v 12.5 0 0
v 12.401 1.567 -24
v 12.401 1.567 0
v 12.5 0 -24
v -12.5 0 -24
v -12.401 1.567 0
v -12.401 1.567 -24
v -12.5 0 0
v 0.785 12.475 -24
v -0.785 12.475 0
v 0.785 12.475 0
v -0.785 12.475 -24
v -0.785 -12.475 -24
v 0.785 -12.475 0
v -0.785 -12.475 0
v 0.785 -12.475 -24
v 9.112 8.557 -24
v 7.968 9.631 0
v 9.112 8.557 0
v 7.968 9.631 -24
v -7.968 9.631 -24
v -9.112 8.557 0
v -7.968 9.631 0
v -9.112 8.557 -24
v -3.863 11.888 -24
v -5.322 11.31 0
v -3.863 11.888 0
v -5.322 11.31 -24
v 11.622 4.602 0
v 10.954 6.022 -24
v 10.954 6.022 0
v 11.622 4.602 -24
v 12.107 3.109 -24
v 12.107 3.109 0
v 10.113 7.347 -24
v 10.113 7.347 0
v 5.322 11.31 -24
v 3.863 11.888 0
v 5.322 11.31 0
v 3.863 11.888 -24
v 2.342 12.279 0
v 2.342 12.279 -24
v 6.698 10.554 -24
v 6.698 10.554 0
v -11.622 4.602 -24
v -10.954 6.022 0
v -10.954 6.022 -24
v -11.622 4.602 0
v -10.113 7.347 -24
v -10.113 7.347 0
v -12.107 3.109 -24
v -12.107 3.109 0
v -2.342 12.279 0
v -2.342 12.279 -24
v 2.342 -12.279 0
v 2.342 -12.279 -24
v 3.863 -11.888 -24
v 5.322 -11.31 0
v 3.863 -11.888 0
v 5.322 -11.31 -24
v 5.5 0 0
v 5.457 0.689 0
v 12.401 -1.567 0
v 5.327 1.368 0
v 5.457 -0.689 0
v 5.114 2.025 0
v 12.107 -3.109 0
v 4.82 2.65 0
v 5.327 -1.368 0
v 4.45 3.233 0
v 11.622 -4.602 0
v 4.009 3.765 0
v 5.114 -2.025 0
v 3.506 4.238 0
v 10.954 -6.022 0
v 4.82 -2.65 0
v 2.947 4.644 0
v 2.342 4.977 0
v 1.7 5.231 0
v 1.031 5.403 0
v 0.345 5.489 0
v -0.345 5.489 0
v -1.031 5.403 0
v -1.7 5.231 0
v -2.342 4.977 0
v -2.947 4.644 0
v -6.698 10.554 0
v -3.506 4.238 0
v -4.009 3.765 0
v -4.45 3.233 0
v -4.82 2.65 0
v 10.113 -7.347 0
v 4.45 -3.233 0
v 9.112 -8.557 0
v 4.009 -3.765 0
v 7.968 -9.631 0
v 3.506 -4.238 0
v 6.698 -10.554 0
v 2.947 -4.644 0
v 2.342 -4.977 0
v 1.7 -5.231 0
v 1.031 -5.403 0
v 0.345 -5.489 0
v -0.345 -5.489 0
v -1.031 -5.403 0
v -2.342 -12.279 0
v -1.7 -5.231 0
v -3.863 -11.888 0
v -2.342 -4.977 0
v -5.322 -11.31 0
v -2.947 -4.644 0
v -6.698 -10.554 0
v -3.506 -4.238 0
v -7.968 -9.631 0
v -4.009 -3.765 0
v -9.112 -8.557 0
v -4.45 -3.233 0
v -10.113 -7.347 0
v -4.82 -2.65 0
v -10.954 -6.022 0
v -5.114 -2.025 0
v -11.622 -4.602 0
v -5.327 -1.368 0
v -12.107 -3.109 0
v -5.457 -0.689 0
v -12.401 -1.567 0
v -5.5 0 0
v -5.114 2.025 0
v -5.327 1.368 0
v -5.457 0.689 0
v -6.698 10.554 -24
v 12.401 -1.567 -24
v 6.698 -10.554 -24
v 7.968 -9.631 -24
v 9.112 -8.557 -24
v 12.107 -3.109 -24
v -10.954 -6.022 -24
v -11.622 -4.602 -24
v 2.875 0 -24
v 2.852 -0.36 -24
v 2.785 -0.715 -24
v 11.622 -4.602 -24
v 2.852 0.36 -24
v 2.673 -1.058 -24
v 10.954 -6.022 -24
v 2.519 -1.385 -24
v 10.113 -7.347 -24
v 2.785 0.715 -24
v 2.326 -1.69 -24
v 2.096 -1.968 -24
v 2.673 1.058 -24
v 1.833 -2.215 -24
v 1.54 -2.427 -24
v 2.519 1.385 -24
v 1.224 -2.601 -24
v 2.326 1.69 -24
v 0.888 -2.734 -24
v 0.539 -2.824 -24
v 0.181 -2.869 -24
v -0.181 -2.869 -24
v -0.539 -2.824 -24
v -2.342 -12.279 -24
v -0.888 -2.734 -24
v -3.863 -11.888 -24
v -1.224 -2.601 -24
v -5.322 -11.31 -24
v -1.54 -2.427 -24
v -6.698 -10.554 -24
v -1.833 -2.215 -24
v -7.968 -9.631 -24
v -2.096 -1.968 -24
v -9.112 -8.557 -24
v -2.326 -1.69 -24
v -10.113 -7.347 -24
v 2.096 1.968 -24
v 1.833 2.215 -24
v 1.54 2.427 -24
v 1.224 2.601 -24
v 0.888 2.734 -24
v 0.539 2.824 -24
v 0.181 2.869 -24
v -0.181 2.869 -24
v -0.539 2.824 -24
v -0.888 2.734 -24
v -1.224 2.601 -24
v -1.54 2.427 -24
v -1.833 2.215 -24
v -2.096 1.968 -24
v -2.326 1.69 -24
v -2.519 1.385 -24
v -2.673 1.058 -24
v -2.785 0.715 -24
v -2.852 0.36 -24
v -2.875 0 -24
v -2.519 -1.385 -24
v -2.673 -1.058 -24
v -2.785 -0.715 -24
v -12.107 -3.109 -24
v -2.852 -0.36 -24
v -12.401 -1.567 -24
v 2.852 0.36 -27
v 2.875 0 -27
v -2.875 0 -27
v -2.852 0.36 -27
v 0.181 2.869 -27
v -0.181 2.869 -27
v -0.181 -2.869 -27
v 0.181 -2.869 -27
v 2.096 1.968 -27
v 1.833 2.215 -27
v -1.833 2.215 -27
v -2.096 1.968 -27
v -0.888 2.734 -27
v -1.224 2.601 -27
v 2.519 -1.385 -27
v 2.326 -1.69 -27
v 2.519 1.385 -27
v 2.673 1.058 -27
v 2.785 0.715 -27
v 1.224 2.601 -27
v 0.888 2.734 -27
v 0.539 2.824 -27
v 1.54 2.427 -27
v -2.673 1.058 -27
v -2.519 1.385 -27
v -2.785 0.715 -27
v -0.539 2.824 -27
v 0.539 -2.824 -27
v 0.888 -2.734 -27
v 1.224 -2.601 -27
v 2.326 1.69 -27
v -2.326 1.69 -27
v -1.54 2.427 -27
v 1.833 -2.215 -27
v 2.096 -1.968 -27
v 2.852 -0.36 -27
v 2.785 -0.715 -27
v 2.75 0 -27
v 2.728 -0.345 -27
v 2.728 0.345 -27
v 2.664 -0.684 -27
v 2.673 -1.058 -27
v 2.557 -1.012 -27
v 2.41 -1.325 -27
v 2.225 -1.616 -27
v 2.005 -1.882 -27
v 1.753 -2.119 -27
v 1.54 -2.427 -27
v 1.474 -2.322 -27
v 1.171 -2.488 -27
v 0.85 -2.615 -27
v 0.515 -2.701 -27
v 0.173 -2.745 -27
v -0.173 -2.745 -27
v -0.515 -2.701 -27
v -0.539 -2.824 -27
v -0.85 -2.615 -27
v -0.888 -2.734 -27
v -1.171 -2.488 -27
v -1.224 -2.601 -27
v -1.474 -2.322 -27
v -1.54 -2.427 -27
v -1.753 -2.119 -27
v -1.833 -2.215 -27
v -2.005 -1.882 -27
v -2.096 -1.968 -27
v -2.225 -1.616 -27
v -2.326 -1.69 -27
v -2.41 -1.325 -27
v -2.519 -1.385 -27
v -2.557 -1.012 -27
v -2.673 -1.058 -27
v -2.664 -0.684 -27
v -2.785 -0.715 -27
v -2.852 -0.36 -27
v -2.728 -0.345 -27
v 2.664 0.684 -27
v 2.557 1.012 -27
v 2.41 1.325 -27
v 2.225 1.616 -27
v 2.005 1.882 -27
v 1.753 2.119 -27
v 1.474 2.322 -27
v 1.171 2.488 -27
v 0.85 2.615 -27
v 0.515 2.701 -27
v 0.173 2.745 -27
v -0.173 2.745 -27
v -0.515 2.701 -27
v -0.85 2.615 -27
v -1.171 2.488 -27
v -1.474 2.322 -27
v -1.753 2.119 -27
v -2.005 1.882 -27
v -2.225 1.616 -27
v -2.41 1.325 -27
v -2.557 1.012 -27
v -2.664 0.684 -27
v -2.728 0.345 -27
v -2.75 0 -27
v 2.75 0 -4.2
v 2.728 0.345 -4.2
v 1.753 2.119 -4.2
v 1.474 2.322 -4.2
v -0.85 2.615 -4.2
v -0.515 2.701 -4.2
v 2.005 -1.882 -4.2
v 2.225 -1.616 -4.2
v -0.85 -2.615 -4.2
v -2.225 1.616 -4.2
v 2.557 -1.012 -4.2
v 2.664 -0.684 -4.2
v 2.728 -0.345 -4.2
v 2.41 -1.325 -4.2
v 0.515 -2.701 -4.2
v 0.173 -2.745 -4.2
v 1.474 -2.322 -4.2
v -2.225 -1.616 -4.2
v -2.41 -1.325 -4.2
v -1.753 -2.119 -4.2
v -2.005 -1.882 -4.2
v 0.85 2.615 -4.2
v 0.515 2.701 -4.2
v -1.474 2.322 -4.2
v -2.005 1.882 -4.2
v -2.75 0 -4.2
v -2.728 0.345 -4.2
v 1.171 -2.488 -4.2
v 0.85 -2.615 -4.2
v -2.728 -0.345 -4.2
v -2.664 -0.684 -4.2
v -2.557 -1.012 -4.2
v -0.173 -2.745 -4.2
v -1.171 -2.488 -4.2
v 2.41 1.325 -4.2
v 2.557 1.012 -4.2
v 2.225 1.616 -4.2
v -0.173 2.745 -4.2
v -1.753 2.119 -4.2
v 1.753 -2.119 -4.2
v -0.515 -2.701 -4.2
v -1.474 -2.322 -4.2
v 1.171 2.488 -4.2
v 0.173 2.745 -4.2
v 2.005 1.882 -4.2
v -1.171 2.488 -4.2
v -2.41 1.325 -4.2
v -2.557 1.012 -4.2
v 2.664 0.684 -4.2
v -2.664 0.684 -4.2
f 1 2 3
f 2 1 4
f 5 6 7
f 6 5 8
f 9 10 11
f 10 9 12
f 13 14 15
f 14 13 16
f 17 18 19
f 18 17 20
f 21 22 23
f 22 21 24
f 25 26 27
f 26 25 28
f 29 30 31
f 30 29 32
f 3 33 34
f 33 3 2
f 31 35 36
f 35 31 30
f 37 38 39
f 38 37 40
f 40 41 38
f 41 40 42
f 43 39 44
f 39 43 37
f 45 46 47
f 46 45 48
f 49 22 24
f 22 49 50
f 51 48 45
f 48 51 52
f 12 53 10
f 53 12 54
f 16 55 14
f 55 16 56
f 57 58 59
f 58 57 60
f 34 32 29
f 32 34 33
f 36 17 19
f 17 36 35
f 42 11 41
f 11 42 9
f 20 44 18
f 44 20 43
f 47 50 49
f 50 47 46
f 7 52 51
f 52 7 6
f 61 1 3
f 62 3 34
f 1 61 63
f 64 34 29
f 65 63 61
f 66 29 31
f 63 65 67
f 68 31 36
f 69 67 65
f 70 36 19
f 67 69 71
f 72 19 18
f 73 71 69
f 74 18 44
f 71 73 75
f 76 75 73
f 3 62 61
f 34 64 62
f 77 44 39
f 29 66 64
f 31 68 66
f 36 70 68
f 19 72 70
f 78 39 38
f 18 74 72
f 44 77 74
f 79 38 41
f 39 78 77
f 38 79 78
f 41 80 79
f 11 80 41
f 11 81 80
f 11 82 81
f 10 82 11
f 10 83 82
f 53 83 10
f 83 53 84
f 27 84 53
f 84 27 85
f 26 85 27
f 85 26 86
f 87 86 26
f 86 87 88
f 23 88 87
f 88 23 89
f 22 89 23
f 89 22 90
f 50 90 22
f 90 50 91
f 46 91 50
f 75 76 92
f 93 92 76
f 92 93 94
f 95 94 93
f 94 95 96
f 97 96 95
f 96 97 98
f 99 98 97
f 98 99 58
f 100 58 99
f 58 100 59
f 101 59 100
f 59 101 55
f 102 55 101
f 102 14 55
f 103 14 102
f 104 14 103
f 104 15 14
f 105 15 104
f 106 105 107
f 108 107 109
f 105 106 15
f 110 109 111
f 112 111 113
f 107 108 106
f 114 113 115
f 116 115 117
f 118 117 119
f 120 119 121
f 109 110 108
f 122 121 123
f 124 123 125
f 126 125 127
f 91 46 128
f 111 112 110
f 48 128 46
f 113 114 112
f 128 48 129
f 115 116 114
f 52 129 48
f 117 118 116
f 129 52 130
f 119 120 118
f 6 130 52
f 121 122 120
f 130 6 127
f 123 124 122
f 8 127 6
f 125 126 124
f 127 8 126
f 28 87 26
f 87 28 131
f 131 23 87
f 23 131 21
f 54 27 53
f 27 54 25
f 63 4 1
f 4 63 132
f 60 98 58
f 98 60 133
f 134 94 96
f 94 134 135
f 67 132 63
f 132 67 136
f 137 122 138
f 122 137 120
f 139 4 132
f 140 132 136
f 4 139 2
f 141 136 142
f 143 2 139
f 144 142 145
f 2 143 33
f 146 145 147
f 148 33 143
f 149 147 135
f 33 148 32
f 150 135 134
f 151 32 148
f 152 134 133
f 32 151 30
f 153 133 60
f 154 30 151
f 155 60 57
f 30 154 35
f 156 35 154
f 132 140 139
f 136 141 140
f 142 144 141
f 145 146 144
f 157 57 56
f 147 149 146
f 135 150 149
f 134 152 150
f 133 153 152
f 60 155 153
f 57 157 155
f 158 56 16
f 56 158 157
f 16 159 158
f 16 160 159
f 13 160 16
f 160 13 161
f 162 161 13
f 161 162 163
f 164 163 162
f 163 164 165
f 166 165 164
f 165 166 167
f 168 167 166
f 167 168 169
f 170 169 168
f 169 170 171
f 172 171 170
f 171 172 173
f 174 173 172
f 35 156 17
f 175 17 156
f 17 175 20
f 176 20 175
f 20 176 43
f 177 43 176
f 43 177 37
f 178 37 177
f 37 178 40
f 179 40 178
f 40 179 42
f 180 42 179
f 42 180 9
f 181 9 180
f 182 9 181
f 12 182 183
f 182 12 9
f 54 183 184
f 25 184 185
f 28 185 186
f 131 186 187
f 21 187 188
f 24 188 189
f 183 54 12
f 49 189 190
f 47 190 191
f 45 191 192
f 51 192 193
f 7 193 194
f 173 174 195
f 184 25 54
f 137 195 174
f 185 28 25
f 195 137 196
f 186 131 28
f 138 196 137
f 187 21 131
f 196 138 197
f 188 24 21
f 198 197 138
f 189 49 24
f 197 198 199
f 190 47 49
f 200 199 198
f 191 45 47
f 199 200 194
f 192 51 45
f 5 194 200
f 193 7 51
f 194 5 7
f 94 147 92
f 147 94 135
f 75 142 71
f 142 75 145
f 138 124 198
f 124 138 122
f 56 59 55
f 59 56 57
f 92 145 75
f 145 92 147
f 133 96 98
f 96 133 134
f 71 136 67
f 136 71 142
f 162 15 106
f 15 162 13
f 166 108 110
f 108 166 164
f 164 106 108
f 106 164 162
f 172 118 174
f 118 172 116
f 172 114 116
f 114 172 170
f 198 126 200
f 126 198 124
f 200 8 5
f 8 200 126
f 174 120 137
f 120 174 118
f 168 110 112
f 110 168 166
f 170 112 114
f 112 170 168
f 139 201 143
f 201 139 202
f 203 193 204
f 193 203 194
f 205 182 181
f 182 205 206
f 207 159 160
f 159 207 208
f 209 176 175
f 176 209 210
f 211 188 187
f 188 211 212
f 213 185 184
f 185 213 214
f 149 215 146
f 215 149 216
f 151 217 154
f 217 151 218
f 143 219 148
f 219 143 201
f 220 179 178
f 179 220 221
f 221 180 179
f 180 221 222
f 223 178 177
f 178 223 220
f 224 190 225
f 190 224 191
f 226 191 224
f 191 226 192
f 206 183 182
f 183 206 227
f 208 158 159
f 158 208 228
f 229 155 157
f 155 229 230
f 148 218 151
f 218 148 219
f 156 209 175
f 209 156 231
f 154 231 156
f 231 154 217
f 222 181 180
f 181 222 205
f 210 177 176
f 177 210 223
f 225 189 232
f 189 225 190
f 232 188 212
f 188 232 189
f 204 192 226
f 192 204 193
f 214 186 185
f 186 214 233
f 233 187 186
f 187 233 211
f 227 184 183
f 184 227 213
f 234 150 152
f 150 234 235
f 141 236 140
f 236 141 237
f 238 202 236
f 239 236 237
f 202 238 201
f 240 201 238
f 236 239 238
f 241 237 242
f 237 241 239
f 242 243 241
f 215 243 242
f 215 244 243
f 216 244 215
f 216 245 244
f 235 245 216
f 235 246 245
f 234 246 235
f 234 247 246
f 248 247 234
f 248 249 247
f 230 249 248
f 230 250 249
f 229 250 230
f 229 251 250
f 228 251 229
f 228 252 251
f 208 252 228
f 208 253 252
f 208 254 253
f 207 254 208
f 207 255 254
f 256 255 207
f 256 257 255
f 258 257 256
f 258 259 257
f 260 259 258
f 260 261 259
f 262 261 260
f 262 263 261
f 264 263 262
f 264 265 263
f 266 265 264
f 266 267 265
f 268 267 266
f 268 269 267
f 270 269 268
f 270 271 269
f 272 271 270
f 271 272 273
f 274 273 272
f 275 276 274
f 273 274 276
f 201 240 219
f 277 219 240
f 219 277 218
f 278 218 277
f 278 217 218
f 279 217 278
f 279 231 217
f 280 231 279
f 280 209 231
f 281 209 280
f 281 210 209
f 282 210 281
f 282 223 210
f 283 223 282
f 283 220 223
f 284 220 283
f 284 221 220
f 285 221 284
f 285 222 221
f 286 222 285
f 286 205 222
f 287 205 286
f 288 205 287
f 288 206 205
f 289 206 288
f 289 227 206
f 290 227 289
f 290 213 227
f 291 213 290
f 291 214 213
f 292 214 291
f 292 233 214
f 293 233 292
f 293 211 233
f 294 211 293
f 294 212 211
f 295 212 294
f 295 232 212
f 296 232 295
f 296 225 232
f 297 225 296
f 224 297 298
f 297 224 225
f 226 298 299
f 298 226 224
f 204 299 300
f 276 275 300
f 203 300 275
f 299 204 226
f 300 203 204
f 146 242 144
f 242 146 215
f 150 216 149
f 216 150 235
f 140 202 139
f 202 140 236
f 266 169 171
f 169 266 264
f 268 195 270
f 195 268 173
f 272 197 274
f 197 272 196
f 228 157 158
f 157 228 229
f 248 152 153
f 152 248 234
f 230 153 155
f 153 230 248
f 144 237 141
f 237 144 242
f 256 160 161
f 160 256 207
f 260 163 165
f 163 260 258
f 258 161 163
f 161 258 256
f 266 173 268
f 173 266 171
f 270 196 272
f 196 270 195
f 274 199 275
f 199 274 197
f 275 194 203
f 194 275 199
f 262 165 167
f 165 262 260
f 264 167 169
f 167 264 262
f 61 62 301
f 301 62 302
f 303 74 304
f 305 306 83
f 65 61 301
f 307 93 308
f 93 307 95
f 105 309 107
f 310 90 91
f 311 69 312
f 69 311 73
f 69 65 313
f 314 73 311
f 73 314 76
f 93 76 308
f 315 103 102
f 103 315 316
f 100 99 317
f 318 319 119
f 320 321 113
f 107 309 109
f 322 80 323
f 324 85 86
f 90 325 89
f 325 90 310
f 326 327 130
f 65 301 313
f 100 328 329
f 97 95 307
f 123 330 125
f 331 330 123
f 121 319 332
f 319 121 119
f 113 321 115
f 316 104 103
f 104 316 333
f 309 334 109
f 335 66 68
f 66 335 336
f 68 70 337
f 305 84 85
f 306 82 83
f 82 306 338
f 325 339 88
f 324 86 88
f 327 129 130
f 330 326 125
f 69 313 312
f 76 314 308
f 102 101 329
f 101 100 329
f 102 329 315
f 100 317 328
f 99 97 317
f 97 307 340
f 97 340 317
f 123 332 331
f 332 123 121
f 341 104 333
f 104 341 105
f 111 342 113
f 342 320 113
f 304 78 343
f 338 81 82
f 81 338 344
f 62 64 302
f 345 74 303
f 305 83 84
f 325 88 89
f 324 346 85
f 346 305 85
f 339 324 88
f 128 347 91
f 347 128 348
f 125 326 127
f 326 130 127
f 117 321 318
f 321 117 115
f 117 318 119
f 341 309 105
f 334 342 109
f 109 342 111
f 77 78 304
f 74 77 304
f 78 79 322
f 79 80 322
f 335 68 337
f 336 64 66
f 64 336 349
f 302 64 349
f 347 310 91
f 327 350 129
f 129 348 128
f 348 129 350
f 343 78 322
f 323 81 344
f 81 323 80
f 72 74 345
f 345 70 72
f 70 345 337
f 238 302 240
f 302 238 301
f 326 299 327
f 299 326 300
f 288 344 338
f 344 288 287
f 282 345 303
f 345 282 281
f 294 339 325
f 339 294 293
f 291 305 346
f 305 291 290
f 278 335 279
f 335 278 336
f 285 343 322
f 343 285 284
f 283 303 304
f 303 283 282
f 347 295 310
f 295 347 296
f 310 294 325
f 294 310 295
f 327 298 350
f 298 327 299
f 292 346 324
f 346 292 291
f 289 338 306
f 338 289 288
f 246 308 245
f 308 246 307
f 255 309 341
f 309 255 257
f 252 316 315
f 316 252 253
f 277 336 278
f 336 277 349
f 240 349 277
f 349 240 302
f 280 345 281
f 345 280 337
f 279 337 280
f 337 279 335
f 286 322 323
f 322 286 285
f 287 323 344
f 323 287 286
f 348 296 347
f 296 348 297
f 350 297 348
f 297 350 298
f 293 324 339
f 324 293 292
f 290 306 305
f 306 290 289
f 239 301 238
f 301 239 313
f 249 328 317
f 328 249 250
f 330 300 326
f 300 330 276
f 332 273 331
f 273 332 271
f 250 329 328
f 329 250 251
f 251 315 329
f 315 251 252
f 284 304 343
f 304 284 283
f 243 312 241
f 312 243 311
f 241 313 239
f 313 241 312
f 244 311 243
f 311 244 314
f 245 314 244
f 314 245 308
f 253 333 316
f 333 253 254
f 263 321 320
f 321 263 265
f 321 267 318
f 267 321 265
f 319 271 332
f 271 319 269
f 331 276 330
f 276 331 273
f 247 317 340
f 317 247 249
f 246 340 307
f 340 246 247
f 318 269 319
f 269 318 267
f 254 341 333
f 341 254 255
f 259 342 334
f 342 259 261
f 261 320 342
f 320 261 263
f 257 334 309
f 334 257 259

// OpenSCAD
$fn = 50;


difference() {
	union() {
		translate(v = [0, 0, -24.0000000000]) {
			cylinder(h = 24, r = 12.5000000000);
		}
		#translate(v = [0, 0, -27.0000000000]) {
			cylinder(h = 27, r = 2.8750000000);
		}
	}
	union() {
		translate(v = [0, 0, 0]) {
			rotate(a = [0, 0, 0]) {
				difference() {
					union() {
						translate(v = [0, 0, -27.0000000000]) {
							cylinder(h = 27, r = 2.2500000000);
						}
						translate(v = [0, 0, -4.2000000000]) {
							cylinder(h = 4.2000000000, r1 = 2.7500000000, r2 = 5.5000000000);
						}
						translate(v = [0, 0, -27.0000000000]) {
							cylinder(h = 27, r = 2.7500000000);
						}
						translate(v = [0, 0, -27.0000000000]) {
							cylinder(h = 27, r = 2.2500000000);
						}
					}
					union();
				}
			}
		}
	}
}
